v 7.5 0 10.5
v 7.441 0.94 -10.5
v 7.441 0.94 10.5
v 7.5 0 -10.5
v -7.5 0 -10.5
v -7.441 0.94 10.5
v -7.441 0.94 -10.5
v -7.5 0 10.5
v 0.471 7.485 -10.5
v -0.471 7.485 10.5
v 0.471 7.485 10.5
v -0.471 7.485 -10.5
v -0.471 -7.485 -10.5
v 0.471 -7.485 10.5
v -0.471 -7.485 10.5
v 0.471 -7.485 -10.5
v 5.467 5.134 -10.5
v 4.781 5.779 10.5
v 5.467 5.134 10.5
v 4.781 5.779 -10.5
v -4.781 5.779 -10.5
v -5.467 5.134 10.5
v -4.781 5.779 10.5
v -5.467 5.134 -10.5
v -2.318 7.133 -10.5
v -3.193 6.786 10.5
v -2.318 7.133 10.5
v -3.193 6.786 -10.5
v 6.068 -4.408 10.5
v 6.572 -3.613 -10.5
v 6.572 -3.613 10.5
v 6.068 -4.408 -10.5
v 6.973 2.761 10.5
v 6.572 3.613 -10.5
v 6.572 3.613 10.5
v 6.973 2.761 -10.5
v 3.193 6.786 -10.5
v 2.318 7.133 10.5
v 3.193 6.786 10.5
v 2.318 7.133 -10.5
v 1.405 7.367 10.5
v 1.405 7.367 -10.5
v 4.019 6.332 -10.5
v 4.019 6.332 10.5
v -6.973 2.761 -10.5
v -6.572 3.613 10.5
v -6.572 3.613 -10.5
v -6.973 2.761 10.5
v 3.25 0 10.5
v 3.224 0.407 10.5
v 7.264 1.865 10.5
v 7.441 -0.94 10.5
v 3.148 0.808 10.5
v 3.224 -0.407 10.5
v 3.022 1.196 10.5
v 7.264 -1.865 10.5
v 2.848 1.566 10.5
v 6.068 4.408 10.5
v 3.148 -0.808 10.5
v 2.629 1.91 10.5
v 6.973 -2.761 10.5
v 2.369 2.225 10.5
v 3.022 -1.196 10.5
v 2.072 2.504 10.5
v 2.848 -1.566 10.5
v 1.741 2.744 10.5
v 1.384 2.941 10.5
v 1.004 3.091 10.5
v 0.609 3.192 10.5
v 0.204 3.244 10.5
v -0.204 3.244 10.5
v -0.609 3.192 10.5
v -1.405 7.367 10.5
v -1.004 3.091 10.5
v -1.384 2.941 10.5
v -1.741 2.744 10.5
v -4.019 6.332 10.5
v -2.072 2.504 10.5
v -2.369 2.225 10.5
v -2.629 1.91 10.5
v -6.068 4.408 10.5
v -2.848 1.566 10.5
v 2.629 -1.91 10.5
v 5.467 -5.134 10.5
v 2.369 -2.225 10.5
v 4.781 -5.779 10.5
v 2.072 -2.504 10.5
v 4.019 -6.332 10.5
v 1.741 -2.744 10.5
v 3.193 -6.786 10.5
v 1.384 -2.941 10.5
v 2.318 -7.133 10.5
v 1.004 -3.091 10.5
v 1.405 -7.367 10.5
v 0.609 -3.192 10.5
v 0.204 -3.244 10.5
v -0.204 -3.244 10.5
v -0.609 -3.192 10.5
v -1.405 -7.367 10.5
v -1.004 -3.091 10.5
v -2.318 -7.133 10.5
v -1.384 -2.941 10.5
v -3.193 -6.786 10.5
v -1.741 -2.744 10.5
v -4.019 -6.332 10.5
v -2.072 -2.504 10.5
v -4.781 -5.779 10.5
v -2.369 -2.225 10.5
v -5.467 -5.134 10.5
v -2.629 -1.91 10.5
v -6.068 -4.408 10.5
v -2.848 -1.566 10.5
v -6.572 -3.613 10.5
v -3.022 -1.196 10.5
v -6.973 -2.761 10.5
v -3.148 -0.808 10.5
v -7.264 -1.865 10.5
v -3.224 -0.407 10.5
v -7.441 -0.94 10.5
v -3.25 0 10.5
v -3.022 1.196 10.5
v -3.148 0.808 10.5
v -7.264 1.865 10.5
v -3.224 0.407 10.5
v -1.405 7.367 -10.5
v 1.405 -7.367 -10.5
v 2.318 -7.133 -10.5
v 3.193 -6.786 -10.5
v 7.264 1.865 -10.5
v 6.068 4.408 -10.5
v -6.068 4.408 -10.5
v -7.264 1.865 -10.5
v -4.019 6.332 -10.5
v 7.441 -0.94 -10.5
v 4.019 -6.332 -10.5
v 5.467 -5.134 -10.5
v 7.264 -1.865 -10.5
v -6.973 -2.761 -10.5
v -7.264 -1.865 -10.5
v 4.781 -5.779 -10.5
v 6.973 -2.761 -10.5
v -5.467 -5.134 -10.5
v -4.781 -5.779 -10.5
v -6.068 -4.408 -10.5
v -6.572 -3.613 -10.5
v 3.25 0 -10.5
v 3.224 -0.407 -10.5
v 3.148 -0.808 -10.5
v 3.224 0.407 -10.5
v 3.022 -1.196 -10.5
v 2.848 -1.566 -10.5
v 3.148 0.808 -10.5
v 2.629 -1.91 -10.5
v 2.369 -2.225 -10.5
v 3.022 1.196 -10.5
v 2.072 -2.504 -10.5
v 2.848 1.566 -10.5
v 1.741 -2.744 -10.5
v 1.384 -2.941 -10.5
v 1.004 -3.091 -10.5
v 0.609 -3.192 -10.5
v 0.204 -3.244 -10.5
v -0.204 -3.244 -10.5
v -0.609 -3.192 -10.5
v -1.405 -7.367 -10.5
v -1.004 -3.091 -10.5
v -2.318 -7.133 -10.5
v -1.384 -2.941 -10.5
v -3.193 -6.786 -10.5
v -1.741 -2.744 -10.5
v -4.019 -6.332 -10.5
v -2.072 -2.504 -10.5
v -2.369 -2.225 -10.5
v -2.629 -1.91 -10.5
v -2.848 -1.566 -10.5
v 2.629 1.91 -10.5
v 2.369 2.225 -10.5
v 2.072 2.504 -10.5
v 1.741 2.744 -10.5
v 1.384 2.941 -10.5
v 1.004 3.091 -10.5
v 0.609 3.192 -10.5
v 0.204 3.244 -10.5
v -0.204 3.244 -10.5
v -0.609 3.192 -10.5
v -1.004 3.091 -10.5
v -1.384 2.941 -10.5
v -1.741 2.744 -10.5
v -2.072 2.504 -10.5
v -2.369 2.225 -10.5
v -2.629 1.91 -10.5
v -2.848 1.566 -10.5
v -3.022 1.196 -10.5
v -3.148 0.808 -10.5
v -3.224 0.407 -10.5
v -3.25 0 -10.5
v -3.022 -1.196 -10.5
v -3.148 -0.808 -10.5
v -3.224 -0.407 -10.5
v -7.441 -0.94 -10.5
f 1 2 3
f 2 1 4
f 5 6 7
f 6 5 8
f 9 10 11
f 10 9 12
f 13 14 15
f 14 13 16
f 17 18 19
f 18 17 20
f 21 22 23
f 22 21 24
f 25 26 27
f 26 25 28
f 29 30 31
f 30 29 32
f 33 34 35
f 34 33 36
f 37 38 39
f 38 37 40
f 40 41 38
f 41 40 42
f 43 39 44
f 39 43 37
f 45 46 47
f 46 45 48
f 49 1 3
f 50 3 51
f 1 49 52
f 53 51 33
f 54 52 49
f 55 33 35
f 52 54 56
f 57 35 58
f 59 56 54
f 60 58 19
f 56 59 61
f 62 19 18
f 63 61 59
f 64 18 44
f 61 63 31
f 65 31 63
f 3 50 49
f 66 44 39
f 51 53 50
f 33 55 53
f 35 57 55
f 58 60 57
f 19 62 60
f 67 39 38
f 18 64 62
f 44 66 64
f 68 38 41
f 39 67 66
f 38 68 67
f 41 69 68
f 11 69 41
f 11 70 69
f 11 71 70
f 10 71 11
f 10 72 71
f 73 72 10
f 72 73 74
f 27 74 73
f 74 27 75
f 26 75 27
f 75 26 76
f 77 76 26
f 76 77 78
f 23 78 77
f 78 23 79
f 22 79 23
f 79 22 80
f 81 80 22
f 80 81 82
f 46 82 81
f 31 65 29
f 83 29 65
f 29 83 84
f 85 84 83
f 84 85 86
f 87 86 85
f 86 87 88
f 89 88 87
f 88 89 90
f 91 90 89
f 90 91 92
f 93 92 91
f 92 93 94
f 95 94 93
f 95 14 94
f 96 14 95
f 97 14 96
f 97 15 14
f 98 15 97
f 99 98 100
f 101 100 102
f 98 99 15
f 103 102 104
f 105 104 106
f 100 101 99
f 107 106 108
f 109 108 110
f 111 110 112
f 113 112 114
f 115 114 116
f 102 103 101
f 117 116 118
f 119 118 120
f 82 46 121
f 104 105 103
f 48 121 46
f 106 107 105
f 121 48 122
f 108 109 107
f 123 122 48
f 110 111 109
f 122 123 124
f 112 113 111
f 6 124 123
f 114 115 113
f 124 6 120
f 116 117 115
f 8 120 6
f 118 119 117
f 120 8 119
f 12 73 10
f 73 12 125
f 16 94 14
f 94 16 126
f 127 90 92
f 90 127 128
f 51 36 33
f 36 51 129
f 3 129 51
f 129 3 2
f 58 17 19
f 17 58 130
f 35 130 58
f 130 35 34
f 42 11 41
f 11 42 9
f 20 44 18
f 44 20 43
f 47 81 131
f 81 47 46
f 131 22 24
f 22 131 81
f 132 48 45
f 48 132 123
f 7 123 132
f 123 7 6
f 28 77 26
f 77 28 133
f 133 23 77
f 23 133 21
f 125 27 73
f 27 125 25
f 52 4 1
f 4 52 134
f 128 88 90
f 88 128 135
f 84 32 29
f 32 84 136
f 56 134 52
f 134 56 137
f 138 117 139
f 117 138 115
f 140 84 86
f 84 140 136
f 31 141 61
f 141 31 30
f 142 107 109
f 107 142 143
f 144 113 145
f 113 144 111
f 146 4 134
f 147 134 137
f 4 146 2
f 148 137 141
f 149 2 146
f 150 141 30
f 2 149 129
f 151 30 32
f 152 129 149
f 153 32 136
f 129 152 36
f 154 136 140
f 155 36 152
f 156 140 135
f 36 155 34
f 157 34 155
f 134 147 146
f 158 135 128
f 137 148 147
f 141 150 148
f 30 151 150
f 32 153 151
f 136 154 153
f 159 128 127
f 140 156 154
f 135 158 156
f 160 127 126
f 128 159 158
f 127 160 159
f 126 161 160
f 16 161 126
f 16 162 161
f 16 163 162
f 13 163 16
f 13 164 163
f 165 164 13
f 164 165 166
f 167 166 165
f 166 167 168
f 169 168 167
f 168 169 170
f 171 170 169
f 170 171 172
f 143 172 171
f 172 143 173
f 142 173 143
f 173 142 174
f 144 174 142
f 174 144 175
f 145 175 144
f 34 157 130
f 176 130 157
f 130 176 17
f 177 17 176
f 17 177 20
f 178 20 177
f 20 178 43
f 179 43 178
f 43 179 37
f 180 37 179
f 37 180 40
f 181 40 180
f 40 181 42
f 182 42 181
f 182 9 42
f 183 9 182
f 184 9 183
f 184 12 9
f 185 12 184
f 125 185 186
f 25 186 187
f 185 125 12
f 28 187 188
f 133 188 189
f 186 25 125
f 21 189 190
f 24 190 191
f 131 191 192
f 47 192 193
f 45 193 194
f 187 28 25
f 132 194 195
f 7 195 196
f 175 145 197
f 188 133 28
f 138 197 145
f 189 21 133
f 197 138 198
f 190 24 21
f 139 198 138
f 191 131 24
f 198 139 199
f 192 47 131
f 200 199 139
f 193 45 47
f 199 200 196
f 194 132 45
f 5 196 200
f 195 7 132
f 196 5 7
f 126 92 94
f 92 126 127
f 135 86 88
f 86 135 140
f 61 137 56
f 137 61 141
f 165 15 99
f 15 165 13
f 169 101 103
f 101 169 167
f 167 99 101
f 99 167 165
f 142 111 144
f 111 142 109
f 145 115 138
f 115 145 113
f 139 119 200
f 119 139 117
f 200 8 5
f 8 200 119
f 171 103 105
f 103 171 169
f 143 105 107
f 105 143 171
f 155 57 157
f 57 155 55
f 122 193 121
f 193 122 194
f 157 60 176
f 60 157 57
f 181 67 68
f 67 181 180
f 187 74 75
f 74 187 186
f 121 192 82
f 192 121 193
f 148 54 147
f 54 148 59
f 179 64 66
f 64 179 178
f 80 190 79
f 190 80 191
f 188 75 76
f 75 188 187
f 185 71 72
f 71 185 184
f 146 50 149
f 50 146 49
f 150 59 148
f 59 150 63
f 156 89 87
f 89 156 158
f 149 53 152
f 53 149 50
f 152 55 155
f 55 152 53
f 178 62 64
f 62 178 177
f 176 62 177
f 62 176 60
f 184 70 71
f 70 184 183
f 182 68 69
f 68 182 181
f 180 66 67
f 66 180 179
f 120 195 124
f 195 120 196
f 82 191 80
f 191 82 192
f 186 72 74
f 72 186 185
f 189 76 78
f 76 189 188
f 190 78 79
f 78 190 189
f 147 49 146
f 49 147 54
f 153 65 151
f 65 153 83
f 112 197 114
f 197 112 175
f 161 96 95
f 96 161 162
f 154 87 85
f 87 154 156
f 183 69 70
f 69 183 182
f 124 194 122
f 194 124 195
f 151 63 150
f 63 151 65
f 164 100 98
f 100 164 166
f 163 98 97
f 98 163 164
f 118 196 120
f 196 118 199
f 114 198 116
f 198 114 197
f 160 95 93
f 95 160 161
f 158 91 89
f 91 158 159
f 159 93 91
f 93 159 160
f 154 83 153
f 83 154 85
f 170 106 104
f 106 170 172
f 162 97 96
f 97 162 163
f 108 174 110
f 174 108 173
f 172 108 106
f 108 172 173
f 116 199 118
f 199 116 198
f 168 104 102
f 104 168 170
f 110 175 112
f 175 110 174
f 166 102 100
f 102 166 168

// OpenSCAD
$fn = 50;


difference() {
	union() {
		translate(v = [0, 0, -10.5000000000]) {
			cylinder(h = 21, r = 7.5000000000);
		}
	}
	union() {
		translate(v = [0, 0, -100.0000000000]) {
			cylinder(h = 200, r = 3.2500000000);
		}
	}
}
